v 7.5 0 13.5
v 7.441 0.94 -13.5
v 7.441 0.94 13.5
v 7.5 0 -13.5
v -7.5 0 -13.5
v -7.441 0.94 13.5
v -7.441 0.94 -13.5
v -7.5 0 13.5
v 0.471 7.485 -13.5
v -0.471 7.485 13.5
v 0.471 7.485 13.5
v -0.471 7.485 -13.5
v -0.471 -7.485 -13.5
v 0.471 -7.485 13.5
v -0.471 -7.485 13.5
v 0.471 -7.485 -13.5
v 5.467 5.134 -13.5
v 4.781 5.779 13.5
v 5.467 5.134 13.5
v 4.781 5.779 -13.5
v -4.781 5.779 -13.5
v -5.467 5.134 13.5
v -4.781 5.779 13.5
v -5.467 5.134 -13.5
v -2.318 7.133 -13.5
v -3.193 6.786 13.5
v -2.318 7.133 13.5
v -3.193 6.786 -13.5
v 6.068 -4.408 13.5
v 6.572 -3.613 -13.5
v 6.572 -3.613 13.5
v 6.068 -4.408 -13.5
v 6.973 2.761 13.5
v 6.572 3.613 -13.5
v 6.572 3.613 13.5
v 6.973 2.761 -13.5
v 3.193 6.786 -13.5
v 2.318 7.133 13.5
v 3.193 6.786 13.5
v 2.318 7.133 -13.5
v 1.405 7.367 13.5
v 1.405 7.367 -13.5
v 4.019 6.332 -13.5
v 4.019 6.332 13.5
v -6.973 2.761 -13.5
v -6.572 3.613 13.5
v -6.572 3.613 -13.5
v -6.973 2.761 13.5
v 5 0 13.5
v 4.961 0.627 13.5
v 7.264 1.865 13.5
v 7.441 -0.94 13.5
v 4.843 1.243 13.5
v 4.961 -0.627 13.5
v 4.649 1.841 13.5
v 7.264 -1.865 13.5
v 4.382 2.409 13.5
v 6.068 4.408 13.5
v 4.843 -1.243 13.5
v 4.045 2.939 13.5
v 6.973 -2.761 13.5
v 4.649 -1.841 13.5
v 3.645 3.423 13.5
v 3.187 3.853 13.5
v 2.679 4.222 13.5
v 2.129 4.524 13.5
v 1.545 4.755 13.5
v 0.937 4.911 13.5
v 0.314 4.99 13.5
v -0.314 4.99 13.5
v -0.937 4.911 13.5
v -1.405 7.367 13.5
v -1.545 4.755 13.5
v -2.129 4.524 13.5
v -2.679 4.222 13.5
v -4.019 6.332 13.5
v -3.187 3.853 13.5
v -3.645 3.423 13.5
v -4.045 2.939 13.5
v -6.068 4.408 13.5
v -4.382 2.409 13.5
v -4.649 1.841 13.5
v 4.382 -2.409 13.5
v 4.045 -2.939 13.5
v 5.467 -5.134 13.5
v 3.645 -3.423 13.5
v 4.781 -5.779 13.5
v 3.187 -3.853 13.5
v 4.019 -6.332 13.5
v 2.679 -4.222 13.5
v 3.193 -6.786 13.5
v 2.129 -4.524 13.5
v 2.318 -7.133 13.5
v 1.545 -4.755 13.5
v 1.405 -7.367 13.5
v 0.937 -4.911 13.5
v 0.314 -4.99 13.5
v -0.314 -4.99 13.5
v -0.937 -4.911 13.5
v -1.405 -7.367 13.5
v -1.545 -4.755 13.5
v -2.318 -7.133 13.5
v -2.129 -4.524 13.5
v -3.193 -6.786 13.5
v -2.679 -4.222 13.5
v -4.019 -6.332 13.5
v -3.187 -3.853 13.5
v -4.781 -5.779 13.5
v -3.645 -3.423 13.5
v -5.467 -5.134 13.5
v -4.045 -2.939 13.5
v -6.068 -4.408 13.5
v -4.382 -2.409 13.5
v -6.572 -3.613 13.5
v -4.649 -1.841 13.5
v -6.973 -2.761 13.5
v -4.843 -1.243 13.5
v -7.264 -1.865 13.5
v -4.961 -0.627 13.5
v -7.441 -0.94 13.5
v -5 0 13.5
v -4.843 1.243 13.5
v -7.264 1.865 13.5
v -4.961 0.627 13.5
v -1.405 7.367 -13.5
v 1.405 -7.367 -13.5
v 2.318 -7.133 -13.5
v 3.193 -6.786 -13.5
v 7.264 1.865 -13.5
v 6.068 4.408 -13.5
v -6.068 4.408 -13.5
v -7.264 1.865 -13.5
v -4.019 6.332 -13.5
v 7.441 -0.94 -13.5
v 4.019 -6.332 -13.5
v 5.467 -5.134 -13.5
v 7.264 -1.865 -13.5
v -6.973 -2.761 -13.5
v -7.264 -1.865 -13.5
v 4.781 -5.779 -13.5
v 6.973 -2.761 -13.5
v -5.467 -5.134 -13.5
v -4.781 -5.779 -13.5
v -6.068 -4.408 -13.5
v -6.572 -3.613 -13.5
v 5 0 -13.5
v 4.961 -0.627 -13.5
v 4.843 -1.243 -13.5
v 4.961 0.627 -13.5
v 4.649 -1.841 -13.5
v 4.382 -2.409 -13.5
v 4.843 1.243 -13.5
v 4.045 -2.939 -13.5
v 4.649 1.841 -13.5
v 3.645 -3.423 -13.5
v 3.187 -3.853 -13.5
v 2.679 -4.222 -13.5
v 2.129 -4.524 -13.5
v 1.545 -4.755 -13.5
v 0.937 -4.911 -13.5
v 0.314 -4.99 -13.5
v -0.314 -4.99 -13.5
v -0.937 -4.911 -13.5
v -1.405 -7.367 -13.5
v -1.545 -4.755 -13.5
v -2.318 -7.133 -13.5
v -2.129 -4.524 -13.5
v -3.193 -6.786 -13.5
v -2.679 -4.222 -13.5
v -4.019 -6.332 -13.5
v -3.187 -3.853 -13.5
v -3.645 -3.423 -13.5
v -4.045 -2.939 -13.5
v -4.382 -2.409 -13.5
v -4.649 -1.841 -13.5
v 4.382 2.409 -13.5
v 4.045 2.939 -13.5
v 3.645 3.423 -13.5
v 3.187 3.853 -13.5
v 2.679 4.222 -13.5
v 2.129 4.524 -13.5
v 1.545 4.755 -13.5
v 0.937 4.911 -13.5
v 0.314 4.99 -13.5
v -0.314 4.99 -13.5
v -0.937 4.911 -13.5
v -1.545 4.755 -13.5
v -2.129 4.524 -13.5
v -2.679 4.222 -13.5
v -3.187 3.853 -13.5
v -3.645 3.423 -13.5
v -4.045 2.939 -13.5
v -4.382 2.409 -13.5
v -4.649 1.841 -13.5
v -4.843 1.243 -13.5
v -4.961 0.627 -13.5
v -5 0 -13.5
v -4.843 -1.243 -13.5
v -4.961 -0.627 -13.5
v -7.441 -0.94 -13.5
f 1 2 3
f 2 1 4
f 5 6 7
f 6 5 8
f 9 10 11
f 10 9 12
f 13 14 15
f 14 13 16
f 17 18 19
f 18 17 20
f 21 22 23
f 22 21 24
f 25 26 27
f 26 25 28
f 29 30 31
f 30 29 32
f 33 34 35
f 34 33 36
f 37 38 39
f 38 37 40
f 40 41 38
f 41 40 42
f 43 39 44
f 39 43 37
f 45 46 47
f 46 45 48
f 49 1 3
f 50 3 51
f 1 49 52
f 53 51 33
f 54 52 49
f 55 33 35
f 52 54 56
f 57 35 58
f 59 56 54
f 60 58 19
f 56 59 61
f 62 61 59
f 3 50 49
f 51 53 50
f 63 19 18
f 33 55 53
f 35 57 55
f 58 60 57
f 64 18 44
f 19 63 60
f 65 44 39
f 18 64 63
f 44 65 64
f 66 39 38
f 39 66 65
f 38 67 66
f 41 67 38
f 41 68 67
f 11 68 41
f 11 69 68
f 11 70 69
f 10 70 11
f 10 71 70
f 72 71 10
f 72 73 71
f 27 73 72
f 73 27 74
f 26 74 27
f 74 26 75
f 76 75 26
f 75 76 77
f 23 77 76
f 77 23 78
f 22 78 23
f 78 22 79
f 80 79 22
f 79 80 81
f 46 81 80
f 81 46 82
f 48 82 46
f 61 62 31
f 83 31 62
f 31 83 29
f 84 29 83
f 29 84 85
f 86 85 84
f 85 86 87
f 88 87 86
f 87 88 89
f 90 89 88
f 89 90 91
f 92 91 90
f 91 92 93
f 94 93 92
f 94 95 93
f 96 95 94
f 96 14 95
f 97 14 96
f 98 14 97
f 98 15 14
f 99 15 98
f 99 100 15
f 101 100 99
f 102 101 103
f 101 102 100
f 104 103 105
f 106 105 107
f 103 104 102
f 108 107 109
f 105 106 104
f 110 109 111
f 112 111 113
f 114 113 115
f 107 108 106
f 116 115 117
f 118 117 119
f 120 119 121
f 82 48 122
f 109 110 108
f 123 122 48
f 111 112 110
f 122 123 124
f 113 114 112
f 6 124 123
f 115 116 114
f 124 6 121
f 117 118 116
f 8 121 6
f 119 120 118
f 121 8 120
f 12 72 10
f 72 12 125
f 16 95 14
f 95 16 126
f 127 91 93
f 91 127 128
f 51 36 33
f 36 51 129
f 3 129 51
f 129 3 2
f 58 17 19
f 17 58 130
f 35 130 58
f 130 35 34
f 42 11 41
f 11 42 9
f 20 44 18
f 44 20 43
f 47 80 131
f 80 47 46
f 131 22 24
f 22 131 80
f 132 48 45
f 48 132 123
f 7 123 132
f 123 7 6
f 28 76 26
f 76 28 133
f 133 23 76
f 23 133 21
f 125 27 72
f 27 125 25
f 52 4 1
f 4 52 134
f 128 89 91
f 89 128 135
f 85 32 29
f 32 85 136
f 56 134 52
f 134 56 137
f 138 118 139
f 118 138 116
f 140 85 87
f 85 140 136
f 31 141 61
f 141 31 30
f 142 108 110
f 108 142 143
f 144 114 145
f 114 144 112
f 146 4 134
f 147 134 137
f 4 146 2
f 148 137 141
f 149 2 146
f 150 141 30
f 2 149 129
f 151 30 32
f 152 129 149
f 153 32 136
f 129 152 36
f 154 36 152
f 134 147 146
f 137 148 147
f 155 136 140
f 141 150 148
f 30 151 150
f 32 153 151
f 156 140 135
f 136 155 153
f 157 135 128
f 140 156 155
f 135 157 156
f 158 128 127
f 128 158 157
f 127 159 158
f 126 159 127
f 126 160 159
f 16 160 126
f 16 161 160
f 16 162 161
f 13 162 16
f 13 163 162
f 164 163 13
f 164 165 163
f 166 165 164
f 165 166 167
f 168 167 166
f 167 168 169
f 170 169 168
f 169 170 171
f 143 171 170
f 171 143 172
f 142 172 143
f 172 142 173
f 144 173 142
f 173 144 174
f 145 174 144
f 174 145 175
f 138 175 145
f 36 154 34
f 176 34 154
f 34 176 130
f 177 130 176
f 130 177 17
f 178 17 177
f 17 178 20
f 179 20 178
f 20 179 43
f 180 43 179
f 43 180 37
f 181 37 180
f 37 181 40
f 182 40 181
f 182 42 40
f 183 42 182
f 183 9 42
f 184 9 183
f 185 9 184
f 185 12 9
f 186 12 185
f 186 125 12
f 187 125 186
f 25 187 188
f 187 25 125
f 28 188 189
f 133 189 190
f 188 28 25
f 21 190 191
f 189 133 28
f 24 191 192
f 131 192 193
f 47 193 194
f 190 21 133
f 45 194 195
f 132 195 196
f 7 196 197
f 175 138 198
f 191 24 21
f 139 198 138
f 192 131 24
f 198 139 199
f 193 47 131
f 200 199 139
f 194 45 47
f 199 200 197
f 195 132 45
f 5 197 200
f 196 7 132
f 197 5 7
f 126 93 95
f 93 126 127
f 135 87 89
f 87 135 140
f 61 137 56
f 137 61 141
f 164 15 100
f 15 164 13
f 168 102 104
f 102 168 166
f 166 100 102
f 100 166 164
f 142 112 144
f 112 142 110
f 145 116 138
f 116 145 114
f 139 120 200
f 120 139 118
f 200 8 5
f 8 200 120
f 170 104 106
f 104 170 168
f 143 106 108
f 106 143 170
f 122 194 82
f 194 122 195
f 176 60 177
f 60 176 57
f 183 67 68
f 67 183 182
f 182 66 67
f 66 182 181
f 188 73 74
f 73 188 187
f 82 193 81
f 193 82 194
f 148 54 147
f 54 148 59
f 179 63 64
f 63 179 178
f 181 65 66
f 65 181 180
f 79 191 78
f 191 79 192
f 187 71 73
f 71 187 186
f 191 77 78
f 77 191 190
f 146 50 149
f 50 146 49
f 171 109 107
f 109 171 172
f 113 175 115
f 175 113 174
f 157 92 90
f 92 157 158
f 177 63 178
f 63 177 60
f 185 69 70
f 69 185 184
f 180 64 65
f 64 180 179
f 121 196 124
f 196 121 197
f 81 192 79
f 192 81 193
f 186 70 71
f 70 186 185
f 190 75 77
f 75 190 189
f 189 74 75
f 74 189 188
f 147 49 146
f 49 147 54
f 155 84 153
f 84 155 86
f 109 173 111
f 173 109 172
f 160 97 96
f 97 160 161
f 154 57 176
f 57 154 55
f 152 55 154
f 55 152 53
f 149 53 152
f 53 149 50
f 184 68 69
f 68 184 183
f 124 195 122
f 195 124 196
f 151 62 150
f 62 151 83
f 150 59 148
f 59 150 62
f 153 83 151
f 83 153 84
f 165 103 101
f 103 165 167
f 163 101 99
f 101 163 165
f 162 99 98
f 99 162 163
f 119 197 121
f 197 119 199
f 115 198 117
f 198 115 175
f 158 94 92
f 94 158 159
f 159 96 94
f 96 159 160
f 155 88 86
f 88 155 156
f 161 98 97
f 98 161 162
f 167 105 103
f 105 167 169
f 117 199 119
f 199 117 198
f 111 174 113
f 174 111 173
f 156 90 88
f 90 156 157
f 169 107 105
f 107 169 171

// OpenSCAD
$fn = 50;


difference() {
	union() {
		translate(v = [0, 0, -13.5000000000]) {
			cylinder(h = 27, r = 7.5000000000);
		}
	}
	union() {
		translate(v = [0, 0, -100.0000000000]) {
			cylinder(h = 200, r = 5);
		}
	}
}
